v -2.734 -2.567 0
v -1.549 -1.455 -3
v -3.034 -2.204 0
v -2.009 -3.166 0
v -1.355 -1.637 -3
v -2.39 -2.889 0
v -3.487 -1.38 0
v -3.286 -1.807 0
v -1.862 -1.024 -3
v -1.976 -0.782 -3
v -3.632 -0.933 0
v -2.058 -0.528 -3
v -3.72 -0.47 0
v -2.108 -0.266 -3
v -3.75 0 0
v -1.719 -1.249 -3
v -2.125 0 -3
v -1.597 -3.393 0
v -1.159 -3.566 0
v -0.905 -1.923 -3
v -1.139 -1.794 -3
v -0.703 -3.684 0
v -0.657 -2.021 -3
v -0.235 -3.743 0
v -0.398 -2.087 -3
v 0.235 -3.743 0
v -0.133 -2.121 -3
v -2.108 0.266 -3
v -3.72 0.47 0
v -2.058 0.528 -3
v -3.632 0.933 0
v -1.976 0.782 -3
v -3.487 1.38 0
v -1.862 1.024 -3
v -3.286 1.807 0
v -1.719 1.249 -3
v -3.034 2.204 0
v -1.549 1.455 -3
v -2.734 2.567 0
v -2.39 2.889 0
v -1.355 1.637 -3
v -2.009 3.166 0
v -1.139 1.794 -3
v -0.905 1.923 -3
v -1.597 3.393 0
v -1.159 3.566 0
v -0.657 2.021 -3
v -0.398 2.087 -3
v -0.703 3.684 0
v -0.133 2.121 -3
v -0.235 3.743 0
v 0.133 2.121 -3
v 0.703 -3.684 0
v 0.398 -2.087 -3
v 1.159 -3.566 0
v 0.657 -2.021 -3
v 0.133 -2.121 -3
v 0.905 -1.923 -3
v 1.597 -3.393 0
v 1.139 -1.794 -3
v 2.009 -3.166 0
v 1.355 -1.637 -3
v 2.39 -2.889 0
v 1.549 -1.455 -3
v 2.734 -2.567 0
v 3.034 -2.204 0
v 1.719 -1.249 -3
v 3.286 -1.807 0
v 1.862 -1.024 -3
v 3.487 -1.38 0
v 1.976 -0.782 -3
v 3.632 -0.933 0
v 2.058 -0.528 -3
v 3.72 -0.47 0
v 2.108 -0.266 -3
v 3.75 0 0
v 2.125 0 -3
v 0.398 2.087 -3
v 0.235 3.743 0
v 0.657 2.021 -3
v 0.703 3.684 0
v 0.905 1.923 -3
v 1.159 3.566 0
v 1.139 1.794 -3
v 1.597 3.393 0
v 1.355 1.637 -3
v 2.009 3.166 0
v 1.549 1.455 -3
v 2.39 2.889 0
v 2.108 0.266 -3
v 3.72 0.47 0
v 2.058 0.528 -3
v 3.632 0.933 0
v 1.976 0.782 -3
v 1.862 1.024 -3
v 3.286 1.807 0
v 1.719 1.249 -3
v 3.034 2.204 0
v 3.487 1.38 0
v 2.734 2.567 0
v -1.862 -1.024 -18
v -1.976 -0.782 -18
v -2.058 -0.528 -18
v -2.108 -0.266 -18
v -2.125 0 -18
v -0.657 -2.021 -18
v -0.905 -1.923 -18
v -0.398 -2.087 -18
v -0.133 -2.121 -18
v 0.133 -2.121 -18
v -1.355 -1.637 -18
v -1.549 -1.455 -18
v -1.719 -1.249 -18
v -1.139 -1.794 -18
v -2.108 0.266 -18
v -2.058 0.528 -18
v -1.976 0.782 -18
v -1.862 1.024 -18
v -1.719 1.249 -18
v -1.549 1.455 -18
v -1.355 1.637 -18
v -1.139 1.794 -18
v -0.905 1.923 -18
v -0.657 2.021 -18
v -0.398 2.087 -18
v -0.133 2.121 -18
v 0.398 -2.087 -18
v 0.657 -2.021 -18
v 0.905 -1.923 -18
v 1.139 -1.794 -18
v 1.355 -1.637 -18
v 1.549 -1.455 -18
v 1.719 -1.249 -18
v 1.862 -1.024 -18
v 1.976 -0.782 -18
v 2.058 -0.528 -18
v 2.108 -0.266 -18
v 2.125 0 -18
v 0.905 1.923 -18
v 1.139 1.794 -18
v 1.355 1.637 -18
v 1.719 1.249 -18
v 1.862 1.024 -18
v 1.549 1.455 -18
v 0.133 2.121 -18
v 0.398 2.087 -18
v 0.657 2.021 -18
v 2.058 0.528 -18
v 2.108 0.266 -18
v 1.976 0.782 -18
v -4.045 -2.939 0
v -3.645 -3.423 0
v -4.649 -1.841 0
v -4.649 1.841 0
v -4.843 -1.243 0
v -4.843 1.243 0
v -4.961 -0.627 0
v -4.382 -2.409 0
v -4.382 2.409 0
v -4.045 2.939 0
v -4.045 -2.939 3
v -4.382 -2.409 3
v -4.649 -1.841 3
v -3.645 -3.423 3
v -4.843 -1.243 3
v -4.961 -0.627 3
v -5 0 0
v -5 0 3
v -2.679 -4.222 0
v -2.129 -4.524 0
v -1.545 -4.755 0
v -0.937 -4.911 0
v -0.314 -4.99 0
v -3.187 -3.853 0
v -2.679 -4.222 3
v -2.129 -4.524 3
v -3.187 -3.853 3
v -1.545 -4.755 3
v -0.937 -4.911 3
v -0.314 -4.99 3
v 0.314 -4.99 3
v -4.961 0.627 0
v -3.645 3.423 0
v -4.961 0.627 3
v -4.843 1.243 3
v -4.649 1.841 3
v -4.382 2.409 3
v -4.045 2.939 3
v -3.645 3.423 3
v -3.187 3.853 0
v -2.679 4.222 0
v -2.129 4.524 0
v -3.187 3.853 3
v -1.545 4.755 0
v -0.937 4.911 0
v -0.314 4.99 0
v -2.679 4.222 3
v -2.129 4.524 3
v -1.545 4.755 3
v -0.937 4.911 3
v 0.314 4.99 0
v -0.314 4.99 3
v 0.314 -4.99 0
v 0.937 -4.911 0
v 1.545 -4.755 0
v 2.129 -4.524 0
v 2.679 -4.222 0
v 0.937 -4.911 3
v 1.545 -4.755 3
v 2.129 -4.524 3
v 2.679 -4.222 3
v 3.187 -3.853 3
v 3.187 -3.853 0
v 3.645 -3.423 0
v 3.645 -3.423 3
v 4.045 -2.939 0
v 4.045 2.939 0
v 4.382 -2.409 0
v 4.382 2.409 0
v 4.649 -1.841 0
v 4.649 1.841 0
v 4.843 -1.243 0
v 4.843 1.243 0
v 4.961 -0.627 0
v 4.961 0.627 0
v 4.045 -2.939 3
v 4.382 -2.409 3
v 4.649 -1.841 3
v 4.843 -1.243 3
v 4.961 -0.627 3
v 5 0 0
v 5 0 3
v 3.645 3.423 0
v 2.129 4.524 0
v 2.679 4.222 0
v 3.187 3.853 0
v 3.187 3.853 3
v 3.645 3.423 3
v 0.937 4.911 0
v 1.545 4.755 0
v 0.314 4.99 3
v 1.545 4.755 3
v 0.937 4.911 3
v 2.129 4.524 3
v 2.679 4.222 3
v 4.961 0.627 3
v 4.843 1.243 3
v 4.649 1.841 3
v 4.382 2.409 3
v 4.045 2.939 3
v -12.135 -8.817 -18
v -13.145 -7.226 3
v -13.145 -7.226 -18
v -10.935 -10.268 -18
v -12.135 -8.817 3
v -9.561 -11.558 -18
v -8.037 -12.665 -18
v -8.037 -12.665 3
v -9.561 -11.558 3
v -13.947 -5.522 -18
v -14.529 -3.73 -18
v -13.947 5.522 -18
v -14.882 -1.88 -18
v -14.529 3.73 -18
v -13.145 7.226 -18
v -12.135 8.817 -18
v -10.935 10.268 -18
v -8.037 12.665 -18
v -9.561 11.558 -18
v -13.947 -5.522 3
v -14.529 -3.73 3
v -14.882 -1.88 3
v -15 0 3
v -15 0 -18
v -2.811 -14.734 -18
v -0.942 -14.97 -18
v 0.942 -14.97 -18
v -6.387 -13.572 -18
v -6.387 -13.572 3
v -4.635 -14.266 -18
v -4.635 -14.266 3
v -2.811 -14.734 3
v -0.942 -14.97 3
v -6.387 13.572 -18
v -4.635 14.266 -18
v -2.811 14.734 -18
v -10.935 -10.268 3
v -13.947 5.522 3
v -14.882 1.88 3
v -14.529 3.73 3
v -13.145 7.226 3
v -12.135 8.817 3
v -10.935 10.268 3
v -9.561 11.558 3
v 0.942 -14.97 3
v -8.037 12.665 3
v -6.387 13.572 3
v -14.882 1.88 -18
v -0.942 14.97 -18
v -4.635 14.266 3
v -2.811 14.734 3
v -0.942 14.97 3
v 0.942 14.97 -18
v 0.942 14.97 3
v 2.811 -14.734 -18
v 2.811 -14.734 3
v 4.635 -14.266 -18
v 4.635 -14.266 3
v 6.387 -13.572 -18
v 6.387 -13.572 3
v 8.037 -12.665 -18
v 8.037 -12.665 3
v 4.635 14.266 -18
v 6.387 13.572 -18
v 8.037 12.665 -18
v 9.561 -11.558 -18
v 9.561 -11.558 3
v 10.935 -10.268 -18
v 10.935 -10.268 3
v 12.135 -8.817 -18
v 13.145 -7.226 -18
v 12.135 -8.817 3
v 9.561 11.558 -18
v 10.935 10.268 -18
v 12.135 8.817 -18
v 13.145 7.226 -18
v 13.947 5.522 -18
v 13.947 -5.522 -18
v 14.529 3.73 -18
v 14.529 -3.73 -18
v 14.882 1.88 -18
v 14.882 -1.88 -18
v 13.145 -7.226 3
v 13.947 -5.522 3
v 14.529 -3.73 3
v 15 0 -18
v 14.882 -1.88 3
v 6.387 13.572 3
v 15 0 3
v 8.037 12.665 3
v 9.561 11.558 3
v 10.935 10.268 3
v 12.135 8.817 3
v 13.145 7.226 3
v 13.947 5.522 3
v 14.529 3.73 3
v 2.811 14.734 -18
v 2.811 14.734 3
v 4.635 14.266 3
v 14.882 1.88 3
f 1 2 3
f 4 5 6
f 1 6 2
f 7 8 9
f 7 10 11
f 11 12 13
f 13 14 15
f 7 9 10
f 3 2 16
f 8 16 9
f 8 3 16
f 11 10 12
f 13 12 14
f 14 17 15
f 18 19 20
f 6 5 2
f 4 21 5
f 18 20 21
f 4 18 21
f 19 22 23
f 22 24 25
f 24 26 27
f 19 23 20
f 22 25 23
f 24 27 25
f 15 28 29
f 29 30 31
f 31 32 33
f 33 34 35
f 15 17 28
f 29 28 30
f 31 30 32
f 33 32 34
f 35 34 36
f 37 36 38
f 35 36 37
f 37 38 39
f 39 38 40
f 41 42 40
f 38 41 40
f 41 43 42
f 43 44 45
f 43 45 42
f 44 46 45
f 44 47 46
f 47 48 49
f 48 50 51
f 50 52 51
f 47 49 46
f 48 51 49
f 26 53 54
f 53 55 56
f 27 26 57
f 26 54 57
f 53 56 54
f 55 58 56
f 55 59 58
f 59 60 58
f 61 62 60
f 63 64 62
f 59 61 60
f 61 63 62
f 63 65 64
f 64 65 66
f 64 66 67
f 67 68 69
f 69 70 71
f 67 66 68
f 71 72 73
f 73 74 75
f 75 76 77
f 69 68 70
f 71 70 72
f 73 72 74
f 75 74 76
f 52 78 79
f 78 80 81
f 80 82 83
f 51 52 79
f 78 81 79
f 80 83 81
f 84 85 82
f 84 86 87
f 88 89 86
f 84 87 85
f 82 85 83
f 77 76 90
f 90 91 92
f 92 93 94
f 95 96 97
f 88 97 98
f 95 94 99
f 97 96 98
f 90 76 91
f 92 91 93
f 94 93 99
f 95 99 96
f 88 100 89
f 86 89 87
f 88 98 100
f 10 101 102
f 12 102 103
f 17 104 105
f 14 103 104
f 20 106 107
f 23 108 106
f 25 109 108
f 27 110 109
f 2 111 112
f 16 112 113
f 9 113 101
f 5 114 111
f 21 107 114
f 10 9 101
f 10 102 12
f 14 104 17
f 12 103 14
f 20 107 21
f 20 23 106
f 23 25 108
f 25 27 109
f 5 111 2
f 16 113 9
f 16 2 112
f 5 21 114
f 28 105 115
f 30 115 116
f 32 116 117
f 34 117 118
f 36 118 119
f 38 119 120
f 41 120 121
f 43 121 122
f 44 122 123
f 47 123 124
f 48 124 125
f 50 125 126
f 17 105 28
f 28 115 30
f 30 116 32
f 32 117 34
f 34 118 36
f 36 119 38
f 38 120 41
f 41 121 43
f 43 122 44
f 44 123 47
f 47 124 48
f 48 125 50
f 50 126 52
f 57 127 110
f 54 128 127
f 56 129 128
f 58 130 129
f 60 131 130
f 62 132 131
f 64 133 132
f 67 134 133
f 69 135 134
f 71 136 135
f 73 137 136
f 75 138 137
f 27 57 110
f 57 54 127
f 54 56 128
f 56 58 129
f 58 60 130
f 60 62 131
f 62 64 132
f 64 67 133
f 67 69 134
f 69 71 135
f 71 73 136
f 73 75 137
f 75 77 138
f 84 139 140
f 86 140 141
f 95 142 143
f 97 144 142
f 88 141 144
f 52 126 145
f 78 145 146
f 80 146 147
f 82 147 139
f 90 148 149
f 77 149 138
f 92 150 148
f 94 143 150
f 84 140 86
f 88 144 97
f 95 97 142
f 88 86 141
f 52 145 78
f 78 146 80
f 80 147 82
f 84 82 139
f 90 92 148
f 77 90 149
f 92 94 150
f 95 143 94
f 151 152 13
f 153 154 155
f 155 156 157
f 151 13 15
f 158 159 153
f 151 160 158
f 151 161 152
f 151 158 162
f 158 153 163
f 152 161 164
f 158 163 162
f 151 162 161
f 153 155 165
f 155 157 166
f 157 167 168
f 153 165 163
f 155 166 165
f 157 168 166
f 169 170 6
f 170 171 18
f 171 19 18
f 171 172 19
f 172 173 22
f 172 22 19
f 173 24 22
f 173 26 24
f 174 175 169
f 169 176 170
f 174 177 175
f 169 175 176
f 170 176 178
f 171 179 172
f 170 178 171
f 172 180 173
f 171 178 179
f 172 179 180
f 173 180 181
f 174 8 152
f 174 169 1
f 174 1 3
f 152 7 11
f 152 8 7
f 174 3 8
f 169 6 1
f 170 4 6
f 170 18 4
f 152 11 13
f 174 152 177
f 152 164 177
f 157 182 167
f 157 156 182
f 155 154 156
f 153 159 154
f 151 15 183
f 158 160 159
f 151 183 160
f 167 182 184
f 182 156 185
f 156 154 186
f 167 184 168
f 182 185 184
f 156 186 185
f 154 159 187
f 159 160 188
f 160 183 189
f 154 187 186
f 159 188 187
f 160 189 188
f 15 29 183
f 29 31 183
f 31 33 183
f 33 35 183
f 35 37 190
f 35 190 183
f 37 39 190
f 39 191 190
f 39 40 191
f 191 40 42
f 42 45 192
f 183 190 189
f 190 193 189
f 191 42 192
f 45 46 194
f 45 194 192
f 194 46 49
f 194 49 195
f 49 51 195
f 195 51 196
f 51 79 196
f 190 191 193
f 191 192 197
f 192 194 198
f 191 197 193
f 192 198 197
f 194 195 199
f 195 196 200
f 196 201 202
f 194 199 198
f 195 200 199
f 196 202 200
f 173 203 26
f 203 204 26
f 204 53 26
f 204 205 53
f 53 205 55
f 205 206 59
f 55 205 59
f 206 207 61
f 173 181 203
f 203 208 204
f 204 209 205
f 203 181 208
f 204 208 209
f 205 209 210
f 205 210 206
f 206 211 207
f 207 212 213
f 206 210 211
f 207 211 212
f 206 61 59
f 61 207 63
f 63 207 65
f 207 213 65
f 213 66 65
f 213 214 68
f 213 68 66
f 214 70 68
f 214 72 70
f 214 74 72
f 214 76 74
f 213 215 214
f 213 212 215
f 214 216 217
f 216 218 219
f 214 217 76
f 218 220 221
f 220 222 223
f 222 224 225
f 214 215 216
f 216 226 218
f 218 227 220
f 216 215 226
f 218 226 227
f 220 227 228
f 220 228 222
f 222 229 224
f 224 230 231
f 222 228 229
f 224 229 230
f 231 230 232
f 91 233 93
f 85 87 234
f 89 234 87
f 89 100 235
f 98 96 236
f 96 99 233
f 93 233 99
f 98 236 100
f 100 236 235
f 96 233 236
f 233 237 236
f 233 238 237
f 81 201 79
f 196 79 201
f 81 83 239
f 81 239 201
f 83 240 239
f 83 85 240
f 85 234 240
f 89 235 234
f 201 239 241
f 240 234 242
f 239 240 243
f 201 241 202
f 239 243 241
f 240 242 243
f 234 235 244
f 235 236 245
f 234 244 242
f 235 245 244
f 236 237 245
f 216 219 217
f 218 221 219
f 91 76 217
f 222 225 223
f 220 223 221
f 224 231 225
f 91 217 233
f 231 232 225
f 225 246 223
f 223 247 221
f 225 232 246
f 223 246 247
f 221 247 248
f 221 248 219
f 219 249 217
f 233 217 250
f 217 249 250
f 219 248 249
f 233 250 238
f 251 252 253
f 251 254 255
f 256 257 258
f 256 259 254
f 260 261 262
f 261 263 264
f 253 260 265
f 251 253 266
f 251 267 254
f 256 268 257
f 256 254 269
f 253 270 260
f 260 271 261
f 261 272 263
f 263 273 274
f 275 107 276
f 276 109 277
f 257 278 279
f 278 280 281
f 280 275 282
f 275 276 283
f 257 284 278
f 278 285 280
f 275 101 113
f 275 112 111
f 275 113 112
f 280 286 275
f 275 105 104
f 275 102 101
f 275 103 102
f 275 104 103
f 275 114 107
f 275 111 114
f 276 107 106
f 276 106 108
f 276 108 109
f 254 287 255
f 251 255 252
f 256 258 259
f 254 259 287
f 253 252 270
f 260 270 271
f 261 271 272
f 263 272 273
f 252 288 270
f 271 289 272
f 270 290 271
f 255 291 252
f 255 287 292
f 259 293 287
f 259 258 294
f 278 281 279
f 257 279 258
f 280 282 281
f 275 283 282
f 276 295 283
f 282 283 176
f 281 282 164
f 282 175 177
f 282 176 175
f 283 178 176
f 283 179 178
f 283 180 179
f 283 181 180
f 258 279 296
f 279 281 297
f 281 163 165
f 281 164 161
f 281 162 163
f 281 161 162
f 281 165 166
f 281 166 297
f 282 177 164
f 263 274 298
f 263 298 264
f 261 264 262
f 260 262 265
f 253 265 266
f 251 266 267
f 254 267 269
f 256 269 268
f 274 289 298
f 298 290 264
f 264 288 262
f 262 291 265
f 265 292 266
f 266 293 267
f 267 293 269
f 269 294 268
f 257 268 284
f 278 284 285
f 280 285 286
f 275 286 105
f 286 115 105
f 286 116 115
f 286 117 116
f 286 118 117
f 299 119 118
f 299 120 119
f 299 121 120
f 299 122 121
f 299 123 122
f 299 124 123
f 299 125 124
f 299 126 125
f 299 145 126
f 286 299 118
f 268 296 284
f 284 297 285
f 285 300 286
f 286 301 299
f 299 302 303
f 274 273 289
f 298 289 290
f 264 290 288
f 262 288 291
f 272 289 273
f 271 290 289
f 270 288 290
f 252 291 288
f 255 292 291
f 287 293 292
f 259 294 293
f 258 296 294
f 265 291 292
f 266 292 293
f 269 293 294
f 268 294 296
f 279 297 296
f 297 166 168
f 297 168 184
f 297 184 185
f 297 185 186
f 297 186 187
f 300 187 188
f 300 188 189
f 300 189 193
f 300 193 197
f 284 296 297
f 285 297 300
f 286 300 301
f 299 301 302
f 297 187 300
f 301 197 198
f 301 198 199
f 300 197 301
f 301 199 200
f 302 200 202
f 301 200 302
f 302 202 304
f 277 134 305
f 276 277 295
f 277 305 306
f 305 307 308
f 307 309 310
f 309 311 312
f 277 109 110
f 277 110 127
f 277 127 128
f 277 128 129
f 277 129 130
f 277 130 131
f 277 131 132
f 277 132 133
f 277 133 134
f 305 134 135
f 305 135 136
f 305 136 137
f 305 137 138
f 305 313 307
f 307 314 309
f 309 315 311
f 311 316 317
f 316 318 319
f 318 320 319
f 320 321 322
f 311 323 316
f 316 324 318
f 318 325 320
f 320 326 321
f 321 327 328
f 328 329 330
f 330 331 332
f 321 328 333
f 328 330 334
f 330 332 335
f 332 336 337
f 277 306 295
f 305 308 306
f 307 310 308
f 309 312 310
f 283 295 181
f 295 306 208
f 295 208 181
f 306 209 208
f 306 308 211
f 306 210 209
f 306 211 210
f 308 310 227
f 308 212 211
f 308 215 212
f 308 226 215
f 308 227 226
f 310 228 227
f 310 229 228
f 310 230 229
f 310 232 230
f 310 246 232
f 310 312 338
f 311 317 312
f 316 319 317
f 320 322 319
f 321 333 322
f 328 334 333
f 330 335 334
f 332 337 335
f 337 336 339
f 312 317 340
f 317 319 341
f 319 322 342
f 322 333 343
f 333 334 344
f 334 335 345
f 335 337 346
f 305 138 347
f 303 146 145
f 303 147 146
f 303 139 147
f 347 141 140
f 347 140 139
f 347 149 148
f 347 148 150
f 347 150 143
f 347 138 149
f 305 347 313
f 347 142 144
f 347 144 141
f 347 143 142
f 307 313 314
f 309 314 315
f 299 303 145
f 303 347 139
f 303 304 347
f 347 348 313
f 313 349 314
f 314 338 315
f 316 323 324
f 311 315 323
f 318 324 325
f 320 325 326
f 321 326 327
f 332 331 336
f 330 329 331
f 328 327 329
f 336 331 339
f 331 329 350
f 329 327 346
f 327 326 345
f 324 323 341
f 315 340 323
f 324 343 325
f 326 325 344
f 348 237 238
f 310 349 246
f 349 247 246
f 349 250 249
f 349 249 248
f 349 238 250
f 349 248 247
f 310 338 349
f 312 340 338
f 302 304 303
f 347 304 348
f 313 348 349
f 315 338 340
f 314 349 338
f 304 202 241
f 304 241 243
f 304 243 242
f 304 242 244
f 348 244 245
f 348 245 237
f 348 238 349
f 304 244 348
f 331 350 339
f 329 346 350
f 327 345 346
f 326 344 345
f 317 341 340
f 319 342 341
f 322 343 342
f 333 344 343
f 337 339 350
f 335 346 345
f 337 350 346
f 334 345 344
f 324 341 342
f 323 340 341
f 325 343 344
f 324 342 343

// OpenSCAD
$fn = 50;

difference() {
	union() {
		translate(v = [0, 0, -18.0]) {
			cylinder(h = 21, r = 15.0);
		}
	}
	union() {
		translate(v = [0, 0, 0]) {
			rotate(a = [0, 0, 0]) {
				difference() {
					union() {
						translate(v = [0, 0, -21.0]) {
							cylinder(h = 21, r = 2.0);
						}
						translate(v = [0, 0, -3]) {
							cylinder(h = 3, r1 = 2.125, r2 = 3.75);
						}
						translate(v = [0, 0, -21.0]) {
							cylinder(h = 21, r = 2.125);
						}
						translate(v = [0, 0, -21.0]) {
							cylinder(h = 21, r = 2.0);
						}
					}
					union();
				}
			}
		}
		#cylinder(h = 3, r = 5.0);
	}
}
